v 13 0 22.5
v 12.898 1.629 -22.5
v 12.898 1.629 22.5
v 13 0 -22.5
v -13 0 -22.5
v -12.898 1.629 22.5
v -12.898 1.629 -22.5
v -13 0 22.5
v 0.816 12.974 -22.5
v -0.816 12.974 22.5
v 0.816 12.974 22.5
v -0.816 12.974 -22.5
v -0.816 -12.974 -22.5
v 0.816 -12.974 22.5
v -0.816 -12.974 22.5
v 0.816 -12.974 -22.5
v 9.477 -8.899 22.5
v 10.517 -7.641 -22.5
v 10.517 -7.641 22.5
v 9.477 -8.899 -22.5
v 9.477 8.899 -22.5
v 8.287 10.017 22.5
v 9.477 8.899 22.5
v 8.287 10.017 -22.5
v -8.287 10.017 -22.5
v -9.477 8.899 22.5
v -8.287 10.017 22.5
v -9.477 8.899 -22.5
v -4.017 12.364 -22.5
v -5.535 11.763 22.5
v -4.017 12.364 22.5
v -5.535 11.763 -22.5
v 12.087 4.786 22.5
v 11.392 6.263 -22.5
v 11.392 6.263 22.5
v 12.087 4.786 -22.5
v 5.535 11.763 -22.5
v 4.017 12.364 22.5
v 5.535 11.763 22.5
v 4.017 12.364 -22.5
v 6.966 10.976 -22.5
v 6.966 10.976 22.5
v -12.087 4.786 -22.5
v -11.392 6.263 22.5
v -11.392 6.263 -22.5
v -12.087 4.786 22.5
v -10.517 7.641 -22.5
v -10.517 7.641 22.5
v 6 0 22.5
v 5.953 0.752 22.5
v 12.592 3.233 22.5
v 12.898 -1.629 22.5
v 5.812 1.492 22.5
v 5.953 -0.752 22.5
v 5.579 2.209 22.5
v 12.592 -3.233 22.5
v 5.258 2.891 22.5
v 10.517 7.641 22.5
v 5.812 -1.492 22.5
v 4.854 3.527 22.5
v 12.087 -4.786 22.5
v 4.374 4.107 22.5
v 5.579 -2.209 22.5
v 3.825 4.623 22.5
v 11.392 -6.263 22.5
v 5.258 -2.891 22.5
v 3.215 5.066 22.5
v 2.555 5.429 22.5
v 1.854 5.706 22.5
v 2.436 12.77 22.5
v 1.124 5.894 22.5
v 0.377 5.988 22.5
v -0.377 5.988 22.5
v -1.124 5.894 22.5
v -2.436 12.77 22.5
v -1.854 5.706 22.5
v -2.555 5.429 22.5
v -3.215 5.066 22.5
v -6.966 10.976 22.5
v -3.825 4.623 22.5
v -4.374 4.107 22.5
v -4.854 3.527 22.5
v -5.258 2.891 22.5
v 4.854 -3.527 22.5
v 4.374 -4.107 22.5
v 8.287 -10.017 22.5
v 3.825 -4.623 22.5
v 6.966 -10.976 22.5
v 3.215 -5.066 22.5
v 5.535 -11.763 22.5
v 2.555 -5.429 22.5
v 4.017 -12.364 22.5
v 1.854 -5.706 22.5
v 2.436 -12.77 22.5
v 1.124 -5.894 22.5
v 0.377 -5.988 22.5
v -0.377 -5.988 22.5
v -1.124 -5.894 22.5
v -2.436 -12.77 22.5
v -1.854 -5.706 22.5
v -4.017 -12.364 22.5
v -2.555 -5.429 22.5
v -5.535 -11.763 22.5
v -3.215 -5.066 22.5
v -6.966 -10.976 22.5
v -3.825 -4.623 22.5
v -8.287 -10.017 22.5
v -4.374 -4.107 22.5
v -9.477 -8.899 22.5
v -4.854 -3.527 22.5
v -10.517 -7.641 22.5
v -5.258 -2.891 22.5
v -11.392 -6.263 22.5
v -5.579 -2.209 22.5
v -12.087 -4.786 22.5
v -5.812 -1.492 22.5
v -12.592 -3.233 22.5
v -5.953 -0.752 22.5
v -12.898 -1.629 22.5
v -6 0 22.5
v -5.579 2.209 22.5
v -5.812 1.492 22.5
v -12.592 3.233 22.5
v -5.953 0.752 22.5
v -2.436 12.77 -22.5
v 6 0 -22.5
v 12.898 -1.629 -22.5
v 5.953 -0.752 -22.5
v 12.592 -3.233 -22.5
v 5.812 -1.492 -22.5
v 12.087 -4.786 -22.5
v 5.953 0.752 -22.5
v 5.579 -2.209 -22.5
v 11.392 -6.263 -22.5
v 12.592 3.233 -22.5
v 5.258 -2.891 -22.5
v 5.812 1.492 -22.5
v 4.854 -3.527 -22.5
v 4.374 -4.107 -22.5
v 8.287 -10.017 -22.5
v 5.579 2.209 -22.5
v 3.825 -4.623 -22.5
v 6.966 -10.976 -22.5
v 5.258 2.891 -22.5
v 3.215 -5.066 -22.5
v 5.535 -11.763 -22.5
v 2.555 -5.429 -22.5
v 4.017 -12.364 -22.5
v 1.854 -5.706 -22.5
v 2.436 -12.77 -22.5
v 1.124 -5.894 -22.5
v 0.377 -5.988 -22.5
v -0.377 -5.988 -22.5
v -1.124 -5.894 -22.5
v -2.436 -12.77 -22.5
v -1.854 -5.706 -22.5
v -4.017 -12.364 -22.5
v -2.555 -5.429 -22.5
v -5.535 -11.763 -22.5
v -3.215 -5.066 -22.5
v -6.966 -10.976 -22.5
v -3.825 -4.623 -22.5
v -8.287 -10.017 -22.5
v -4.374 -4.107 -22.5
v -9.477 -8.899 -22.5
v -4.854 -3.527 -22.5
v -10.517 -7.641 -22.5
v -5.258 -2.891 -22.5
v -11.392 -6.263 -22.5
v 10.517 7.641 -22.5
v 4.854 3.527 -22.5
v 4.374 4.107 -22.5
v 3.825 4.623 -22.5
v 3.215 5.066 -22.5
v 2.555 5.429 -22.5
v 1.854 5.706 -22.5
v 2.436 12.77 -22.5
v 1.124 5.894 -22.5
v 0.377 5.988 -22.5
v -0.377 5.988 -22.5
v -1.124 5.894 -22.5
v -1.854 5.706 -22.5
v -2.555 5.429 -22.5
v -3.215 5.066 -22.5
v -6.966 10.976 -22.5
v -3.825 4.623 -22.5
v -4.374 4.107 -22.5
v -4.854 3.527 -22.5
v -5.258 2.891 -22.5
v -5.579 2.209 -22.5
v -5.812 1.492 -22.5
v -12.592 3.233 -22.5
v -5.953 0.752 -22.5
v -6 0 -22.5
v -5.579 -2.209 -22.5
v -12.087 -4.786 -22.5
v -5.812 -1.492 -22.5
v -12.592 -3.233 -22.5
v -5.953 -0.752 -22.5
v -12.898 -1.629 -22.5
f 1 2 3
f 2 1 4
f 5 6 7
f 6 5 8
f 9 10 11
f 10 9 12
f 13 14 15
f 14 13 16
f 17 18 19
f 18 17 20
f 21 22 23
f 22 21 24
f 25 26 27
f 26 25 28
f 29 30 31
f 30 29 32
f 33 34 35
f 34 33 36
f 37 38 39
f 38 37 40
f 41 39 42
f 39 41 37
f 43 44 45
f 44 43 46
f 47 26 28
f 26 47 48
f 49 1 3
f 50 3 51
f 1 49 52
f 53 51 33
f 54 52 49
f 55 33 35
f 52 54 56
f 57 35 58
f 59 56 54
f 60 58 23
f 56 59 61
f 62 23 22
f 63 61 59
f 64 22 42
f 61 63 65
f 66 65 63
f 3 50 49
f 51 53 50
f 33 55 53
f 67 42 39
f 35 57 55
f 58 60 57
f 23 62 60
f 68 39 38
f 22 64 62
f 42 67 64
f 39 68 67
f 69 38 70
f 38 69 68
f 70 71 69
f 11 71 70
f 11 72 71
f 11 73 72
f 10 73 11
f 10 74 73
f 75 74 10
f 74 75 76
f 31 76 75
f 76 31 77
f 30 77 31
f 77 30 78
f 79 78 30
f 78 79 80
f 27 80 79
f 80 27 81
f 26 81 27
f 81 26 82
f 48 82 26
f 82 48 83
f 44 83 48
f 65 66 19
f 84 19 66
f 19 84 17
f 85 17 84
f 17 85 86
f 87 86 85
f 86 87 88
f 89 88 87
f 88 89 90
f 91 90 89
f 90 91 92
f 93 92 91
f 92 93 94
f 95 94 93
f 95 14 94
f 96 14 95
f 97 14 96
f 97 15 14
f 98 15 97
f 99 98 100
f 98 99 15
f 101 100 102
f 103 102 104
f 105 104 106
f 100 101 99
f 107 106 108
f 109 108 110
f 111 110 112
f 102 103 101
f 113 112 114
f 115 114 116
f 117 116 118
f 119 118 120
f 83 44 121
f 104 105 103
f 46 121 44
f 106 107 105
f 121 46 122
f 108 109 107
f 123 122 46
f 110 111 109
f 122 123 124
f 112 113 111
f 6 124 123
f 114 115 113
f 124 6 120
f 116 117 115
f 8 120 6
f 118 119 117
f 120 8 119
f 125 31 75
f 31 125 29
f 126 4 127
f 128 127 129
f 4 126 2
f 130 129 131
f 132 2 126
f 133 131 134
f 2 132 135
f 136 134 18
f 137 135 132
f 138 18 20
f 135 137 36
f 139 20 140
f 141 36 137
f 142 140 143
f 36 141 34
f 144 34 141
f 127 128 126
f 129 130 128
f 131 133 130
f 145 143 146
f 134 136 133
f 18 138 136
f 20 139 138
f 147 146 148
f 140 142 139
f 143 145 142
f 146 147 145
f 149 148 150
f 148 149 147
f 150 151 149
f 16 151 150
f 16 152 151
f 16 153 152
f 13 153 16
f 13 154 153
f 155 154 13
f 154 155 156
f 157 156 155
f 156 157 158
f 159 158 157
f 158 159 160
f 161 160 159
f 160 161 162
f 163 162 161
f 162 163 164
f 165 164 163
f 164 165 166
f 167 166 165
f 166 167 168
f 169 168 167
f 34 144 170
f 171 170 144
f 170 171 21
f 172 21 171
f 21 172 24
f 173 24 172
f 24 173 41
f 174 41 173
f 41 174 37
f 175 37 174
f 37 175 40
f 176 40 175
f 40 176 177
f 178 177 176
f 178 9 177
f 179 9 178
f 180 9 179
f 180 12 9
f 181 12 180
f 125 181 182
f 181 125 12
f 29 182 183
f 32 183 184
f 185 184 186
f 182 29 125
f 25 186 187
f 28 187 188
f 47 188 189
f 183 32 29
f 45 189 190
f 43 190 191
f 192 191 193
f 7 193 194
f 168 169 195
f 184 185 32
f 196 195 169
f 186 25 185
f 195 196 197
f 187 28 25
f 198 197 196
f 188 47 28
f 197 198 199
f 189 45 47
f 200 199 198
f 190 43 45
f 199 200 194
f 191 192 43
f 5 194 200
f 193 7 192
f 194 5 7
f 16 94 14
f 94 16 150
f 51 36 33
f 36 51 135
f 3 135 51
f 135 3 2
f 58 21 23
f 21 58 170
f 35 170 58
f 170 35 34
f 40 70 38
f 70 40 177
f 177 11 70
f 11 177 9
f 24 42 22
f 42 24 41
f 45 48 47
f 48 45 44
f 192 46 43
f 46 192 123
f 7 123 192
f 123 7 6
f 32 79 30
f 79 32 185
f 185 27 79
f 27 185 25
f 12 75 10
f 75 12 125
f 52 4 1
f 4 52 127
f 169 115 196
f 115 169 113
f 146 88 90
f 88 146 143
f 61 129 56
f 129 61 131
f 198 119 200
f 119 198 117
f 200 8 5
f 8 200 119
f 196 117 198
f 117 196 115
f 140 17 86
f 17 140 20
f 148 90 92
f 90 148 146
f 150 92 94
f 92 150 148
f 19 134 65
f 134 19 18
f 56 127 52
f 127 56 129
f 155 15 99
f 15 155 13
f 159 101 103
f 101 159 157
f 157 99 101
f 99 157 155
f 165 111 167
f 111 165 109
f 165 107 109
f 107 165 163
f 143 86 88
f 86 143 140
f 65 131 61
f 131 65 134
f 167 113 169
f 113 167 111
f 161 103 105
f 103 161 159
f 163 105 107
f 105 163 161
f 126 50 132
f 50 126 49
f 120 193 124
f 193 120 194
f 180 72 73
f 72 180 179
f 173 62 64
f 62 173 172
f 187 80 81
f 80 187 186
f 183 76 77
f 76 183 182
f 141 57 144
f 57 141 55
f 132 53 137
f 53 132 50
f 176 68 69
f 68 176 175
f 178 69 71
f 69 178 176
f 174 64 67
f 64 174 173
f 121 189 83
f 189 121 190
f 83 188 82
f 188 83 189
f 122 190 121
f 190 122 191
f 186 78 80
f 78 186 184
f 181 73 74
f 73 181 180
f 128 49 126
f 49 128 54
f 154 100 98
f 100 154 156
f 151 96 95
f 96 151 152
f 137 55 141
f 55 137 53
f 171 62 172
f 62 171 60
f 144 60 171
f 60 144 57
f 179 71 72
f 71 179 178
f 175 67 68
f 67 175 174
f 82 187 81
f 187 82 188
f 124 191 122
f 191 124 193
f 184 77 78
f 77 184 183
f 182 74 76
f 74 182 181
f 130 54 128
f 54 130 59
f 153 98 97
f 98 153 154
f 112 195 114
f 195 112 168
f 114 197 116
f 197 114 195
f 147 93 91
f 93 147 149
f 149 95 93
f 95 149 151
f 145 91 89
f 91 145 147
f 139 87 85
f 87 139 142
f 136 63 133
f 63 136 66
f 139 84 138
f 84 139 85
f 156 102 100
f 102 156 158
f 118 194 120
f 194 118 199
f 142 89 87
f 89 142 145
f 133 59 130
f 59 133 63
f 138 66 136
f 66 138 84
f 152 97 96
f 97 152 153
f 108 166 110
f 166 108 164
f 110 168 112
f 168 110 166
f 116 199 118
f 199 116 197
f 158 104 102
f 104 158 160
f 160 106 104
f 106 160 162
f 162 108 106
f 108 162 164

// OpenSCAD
$fn = 50;


difference() {
	union() {
		translate(v = [0, 0, -22.5000000000]) {
			cylinder(h = 45, r = 13.0000000000);
		}
	}
	union() {
		translate(v = [0, 0, -100.0000000000]) {
			cylinder(h = 200, r = 6);
		}
	}
}
